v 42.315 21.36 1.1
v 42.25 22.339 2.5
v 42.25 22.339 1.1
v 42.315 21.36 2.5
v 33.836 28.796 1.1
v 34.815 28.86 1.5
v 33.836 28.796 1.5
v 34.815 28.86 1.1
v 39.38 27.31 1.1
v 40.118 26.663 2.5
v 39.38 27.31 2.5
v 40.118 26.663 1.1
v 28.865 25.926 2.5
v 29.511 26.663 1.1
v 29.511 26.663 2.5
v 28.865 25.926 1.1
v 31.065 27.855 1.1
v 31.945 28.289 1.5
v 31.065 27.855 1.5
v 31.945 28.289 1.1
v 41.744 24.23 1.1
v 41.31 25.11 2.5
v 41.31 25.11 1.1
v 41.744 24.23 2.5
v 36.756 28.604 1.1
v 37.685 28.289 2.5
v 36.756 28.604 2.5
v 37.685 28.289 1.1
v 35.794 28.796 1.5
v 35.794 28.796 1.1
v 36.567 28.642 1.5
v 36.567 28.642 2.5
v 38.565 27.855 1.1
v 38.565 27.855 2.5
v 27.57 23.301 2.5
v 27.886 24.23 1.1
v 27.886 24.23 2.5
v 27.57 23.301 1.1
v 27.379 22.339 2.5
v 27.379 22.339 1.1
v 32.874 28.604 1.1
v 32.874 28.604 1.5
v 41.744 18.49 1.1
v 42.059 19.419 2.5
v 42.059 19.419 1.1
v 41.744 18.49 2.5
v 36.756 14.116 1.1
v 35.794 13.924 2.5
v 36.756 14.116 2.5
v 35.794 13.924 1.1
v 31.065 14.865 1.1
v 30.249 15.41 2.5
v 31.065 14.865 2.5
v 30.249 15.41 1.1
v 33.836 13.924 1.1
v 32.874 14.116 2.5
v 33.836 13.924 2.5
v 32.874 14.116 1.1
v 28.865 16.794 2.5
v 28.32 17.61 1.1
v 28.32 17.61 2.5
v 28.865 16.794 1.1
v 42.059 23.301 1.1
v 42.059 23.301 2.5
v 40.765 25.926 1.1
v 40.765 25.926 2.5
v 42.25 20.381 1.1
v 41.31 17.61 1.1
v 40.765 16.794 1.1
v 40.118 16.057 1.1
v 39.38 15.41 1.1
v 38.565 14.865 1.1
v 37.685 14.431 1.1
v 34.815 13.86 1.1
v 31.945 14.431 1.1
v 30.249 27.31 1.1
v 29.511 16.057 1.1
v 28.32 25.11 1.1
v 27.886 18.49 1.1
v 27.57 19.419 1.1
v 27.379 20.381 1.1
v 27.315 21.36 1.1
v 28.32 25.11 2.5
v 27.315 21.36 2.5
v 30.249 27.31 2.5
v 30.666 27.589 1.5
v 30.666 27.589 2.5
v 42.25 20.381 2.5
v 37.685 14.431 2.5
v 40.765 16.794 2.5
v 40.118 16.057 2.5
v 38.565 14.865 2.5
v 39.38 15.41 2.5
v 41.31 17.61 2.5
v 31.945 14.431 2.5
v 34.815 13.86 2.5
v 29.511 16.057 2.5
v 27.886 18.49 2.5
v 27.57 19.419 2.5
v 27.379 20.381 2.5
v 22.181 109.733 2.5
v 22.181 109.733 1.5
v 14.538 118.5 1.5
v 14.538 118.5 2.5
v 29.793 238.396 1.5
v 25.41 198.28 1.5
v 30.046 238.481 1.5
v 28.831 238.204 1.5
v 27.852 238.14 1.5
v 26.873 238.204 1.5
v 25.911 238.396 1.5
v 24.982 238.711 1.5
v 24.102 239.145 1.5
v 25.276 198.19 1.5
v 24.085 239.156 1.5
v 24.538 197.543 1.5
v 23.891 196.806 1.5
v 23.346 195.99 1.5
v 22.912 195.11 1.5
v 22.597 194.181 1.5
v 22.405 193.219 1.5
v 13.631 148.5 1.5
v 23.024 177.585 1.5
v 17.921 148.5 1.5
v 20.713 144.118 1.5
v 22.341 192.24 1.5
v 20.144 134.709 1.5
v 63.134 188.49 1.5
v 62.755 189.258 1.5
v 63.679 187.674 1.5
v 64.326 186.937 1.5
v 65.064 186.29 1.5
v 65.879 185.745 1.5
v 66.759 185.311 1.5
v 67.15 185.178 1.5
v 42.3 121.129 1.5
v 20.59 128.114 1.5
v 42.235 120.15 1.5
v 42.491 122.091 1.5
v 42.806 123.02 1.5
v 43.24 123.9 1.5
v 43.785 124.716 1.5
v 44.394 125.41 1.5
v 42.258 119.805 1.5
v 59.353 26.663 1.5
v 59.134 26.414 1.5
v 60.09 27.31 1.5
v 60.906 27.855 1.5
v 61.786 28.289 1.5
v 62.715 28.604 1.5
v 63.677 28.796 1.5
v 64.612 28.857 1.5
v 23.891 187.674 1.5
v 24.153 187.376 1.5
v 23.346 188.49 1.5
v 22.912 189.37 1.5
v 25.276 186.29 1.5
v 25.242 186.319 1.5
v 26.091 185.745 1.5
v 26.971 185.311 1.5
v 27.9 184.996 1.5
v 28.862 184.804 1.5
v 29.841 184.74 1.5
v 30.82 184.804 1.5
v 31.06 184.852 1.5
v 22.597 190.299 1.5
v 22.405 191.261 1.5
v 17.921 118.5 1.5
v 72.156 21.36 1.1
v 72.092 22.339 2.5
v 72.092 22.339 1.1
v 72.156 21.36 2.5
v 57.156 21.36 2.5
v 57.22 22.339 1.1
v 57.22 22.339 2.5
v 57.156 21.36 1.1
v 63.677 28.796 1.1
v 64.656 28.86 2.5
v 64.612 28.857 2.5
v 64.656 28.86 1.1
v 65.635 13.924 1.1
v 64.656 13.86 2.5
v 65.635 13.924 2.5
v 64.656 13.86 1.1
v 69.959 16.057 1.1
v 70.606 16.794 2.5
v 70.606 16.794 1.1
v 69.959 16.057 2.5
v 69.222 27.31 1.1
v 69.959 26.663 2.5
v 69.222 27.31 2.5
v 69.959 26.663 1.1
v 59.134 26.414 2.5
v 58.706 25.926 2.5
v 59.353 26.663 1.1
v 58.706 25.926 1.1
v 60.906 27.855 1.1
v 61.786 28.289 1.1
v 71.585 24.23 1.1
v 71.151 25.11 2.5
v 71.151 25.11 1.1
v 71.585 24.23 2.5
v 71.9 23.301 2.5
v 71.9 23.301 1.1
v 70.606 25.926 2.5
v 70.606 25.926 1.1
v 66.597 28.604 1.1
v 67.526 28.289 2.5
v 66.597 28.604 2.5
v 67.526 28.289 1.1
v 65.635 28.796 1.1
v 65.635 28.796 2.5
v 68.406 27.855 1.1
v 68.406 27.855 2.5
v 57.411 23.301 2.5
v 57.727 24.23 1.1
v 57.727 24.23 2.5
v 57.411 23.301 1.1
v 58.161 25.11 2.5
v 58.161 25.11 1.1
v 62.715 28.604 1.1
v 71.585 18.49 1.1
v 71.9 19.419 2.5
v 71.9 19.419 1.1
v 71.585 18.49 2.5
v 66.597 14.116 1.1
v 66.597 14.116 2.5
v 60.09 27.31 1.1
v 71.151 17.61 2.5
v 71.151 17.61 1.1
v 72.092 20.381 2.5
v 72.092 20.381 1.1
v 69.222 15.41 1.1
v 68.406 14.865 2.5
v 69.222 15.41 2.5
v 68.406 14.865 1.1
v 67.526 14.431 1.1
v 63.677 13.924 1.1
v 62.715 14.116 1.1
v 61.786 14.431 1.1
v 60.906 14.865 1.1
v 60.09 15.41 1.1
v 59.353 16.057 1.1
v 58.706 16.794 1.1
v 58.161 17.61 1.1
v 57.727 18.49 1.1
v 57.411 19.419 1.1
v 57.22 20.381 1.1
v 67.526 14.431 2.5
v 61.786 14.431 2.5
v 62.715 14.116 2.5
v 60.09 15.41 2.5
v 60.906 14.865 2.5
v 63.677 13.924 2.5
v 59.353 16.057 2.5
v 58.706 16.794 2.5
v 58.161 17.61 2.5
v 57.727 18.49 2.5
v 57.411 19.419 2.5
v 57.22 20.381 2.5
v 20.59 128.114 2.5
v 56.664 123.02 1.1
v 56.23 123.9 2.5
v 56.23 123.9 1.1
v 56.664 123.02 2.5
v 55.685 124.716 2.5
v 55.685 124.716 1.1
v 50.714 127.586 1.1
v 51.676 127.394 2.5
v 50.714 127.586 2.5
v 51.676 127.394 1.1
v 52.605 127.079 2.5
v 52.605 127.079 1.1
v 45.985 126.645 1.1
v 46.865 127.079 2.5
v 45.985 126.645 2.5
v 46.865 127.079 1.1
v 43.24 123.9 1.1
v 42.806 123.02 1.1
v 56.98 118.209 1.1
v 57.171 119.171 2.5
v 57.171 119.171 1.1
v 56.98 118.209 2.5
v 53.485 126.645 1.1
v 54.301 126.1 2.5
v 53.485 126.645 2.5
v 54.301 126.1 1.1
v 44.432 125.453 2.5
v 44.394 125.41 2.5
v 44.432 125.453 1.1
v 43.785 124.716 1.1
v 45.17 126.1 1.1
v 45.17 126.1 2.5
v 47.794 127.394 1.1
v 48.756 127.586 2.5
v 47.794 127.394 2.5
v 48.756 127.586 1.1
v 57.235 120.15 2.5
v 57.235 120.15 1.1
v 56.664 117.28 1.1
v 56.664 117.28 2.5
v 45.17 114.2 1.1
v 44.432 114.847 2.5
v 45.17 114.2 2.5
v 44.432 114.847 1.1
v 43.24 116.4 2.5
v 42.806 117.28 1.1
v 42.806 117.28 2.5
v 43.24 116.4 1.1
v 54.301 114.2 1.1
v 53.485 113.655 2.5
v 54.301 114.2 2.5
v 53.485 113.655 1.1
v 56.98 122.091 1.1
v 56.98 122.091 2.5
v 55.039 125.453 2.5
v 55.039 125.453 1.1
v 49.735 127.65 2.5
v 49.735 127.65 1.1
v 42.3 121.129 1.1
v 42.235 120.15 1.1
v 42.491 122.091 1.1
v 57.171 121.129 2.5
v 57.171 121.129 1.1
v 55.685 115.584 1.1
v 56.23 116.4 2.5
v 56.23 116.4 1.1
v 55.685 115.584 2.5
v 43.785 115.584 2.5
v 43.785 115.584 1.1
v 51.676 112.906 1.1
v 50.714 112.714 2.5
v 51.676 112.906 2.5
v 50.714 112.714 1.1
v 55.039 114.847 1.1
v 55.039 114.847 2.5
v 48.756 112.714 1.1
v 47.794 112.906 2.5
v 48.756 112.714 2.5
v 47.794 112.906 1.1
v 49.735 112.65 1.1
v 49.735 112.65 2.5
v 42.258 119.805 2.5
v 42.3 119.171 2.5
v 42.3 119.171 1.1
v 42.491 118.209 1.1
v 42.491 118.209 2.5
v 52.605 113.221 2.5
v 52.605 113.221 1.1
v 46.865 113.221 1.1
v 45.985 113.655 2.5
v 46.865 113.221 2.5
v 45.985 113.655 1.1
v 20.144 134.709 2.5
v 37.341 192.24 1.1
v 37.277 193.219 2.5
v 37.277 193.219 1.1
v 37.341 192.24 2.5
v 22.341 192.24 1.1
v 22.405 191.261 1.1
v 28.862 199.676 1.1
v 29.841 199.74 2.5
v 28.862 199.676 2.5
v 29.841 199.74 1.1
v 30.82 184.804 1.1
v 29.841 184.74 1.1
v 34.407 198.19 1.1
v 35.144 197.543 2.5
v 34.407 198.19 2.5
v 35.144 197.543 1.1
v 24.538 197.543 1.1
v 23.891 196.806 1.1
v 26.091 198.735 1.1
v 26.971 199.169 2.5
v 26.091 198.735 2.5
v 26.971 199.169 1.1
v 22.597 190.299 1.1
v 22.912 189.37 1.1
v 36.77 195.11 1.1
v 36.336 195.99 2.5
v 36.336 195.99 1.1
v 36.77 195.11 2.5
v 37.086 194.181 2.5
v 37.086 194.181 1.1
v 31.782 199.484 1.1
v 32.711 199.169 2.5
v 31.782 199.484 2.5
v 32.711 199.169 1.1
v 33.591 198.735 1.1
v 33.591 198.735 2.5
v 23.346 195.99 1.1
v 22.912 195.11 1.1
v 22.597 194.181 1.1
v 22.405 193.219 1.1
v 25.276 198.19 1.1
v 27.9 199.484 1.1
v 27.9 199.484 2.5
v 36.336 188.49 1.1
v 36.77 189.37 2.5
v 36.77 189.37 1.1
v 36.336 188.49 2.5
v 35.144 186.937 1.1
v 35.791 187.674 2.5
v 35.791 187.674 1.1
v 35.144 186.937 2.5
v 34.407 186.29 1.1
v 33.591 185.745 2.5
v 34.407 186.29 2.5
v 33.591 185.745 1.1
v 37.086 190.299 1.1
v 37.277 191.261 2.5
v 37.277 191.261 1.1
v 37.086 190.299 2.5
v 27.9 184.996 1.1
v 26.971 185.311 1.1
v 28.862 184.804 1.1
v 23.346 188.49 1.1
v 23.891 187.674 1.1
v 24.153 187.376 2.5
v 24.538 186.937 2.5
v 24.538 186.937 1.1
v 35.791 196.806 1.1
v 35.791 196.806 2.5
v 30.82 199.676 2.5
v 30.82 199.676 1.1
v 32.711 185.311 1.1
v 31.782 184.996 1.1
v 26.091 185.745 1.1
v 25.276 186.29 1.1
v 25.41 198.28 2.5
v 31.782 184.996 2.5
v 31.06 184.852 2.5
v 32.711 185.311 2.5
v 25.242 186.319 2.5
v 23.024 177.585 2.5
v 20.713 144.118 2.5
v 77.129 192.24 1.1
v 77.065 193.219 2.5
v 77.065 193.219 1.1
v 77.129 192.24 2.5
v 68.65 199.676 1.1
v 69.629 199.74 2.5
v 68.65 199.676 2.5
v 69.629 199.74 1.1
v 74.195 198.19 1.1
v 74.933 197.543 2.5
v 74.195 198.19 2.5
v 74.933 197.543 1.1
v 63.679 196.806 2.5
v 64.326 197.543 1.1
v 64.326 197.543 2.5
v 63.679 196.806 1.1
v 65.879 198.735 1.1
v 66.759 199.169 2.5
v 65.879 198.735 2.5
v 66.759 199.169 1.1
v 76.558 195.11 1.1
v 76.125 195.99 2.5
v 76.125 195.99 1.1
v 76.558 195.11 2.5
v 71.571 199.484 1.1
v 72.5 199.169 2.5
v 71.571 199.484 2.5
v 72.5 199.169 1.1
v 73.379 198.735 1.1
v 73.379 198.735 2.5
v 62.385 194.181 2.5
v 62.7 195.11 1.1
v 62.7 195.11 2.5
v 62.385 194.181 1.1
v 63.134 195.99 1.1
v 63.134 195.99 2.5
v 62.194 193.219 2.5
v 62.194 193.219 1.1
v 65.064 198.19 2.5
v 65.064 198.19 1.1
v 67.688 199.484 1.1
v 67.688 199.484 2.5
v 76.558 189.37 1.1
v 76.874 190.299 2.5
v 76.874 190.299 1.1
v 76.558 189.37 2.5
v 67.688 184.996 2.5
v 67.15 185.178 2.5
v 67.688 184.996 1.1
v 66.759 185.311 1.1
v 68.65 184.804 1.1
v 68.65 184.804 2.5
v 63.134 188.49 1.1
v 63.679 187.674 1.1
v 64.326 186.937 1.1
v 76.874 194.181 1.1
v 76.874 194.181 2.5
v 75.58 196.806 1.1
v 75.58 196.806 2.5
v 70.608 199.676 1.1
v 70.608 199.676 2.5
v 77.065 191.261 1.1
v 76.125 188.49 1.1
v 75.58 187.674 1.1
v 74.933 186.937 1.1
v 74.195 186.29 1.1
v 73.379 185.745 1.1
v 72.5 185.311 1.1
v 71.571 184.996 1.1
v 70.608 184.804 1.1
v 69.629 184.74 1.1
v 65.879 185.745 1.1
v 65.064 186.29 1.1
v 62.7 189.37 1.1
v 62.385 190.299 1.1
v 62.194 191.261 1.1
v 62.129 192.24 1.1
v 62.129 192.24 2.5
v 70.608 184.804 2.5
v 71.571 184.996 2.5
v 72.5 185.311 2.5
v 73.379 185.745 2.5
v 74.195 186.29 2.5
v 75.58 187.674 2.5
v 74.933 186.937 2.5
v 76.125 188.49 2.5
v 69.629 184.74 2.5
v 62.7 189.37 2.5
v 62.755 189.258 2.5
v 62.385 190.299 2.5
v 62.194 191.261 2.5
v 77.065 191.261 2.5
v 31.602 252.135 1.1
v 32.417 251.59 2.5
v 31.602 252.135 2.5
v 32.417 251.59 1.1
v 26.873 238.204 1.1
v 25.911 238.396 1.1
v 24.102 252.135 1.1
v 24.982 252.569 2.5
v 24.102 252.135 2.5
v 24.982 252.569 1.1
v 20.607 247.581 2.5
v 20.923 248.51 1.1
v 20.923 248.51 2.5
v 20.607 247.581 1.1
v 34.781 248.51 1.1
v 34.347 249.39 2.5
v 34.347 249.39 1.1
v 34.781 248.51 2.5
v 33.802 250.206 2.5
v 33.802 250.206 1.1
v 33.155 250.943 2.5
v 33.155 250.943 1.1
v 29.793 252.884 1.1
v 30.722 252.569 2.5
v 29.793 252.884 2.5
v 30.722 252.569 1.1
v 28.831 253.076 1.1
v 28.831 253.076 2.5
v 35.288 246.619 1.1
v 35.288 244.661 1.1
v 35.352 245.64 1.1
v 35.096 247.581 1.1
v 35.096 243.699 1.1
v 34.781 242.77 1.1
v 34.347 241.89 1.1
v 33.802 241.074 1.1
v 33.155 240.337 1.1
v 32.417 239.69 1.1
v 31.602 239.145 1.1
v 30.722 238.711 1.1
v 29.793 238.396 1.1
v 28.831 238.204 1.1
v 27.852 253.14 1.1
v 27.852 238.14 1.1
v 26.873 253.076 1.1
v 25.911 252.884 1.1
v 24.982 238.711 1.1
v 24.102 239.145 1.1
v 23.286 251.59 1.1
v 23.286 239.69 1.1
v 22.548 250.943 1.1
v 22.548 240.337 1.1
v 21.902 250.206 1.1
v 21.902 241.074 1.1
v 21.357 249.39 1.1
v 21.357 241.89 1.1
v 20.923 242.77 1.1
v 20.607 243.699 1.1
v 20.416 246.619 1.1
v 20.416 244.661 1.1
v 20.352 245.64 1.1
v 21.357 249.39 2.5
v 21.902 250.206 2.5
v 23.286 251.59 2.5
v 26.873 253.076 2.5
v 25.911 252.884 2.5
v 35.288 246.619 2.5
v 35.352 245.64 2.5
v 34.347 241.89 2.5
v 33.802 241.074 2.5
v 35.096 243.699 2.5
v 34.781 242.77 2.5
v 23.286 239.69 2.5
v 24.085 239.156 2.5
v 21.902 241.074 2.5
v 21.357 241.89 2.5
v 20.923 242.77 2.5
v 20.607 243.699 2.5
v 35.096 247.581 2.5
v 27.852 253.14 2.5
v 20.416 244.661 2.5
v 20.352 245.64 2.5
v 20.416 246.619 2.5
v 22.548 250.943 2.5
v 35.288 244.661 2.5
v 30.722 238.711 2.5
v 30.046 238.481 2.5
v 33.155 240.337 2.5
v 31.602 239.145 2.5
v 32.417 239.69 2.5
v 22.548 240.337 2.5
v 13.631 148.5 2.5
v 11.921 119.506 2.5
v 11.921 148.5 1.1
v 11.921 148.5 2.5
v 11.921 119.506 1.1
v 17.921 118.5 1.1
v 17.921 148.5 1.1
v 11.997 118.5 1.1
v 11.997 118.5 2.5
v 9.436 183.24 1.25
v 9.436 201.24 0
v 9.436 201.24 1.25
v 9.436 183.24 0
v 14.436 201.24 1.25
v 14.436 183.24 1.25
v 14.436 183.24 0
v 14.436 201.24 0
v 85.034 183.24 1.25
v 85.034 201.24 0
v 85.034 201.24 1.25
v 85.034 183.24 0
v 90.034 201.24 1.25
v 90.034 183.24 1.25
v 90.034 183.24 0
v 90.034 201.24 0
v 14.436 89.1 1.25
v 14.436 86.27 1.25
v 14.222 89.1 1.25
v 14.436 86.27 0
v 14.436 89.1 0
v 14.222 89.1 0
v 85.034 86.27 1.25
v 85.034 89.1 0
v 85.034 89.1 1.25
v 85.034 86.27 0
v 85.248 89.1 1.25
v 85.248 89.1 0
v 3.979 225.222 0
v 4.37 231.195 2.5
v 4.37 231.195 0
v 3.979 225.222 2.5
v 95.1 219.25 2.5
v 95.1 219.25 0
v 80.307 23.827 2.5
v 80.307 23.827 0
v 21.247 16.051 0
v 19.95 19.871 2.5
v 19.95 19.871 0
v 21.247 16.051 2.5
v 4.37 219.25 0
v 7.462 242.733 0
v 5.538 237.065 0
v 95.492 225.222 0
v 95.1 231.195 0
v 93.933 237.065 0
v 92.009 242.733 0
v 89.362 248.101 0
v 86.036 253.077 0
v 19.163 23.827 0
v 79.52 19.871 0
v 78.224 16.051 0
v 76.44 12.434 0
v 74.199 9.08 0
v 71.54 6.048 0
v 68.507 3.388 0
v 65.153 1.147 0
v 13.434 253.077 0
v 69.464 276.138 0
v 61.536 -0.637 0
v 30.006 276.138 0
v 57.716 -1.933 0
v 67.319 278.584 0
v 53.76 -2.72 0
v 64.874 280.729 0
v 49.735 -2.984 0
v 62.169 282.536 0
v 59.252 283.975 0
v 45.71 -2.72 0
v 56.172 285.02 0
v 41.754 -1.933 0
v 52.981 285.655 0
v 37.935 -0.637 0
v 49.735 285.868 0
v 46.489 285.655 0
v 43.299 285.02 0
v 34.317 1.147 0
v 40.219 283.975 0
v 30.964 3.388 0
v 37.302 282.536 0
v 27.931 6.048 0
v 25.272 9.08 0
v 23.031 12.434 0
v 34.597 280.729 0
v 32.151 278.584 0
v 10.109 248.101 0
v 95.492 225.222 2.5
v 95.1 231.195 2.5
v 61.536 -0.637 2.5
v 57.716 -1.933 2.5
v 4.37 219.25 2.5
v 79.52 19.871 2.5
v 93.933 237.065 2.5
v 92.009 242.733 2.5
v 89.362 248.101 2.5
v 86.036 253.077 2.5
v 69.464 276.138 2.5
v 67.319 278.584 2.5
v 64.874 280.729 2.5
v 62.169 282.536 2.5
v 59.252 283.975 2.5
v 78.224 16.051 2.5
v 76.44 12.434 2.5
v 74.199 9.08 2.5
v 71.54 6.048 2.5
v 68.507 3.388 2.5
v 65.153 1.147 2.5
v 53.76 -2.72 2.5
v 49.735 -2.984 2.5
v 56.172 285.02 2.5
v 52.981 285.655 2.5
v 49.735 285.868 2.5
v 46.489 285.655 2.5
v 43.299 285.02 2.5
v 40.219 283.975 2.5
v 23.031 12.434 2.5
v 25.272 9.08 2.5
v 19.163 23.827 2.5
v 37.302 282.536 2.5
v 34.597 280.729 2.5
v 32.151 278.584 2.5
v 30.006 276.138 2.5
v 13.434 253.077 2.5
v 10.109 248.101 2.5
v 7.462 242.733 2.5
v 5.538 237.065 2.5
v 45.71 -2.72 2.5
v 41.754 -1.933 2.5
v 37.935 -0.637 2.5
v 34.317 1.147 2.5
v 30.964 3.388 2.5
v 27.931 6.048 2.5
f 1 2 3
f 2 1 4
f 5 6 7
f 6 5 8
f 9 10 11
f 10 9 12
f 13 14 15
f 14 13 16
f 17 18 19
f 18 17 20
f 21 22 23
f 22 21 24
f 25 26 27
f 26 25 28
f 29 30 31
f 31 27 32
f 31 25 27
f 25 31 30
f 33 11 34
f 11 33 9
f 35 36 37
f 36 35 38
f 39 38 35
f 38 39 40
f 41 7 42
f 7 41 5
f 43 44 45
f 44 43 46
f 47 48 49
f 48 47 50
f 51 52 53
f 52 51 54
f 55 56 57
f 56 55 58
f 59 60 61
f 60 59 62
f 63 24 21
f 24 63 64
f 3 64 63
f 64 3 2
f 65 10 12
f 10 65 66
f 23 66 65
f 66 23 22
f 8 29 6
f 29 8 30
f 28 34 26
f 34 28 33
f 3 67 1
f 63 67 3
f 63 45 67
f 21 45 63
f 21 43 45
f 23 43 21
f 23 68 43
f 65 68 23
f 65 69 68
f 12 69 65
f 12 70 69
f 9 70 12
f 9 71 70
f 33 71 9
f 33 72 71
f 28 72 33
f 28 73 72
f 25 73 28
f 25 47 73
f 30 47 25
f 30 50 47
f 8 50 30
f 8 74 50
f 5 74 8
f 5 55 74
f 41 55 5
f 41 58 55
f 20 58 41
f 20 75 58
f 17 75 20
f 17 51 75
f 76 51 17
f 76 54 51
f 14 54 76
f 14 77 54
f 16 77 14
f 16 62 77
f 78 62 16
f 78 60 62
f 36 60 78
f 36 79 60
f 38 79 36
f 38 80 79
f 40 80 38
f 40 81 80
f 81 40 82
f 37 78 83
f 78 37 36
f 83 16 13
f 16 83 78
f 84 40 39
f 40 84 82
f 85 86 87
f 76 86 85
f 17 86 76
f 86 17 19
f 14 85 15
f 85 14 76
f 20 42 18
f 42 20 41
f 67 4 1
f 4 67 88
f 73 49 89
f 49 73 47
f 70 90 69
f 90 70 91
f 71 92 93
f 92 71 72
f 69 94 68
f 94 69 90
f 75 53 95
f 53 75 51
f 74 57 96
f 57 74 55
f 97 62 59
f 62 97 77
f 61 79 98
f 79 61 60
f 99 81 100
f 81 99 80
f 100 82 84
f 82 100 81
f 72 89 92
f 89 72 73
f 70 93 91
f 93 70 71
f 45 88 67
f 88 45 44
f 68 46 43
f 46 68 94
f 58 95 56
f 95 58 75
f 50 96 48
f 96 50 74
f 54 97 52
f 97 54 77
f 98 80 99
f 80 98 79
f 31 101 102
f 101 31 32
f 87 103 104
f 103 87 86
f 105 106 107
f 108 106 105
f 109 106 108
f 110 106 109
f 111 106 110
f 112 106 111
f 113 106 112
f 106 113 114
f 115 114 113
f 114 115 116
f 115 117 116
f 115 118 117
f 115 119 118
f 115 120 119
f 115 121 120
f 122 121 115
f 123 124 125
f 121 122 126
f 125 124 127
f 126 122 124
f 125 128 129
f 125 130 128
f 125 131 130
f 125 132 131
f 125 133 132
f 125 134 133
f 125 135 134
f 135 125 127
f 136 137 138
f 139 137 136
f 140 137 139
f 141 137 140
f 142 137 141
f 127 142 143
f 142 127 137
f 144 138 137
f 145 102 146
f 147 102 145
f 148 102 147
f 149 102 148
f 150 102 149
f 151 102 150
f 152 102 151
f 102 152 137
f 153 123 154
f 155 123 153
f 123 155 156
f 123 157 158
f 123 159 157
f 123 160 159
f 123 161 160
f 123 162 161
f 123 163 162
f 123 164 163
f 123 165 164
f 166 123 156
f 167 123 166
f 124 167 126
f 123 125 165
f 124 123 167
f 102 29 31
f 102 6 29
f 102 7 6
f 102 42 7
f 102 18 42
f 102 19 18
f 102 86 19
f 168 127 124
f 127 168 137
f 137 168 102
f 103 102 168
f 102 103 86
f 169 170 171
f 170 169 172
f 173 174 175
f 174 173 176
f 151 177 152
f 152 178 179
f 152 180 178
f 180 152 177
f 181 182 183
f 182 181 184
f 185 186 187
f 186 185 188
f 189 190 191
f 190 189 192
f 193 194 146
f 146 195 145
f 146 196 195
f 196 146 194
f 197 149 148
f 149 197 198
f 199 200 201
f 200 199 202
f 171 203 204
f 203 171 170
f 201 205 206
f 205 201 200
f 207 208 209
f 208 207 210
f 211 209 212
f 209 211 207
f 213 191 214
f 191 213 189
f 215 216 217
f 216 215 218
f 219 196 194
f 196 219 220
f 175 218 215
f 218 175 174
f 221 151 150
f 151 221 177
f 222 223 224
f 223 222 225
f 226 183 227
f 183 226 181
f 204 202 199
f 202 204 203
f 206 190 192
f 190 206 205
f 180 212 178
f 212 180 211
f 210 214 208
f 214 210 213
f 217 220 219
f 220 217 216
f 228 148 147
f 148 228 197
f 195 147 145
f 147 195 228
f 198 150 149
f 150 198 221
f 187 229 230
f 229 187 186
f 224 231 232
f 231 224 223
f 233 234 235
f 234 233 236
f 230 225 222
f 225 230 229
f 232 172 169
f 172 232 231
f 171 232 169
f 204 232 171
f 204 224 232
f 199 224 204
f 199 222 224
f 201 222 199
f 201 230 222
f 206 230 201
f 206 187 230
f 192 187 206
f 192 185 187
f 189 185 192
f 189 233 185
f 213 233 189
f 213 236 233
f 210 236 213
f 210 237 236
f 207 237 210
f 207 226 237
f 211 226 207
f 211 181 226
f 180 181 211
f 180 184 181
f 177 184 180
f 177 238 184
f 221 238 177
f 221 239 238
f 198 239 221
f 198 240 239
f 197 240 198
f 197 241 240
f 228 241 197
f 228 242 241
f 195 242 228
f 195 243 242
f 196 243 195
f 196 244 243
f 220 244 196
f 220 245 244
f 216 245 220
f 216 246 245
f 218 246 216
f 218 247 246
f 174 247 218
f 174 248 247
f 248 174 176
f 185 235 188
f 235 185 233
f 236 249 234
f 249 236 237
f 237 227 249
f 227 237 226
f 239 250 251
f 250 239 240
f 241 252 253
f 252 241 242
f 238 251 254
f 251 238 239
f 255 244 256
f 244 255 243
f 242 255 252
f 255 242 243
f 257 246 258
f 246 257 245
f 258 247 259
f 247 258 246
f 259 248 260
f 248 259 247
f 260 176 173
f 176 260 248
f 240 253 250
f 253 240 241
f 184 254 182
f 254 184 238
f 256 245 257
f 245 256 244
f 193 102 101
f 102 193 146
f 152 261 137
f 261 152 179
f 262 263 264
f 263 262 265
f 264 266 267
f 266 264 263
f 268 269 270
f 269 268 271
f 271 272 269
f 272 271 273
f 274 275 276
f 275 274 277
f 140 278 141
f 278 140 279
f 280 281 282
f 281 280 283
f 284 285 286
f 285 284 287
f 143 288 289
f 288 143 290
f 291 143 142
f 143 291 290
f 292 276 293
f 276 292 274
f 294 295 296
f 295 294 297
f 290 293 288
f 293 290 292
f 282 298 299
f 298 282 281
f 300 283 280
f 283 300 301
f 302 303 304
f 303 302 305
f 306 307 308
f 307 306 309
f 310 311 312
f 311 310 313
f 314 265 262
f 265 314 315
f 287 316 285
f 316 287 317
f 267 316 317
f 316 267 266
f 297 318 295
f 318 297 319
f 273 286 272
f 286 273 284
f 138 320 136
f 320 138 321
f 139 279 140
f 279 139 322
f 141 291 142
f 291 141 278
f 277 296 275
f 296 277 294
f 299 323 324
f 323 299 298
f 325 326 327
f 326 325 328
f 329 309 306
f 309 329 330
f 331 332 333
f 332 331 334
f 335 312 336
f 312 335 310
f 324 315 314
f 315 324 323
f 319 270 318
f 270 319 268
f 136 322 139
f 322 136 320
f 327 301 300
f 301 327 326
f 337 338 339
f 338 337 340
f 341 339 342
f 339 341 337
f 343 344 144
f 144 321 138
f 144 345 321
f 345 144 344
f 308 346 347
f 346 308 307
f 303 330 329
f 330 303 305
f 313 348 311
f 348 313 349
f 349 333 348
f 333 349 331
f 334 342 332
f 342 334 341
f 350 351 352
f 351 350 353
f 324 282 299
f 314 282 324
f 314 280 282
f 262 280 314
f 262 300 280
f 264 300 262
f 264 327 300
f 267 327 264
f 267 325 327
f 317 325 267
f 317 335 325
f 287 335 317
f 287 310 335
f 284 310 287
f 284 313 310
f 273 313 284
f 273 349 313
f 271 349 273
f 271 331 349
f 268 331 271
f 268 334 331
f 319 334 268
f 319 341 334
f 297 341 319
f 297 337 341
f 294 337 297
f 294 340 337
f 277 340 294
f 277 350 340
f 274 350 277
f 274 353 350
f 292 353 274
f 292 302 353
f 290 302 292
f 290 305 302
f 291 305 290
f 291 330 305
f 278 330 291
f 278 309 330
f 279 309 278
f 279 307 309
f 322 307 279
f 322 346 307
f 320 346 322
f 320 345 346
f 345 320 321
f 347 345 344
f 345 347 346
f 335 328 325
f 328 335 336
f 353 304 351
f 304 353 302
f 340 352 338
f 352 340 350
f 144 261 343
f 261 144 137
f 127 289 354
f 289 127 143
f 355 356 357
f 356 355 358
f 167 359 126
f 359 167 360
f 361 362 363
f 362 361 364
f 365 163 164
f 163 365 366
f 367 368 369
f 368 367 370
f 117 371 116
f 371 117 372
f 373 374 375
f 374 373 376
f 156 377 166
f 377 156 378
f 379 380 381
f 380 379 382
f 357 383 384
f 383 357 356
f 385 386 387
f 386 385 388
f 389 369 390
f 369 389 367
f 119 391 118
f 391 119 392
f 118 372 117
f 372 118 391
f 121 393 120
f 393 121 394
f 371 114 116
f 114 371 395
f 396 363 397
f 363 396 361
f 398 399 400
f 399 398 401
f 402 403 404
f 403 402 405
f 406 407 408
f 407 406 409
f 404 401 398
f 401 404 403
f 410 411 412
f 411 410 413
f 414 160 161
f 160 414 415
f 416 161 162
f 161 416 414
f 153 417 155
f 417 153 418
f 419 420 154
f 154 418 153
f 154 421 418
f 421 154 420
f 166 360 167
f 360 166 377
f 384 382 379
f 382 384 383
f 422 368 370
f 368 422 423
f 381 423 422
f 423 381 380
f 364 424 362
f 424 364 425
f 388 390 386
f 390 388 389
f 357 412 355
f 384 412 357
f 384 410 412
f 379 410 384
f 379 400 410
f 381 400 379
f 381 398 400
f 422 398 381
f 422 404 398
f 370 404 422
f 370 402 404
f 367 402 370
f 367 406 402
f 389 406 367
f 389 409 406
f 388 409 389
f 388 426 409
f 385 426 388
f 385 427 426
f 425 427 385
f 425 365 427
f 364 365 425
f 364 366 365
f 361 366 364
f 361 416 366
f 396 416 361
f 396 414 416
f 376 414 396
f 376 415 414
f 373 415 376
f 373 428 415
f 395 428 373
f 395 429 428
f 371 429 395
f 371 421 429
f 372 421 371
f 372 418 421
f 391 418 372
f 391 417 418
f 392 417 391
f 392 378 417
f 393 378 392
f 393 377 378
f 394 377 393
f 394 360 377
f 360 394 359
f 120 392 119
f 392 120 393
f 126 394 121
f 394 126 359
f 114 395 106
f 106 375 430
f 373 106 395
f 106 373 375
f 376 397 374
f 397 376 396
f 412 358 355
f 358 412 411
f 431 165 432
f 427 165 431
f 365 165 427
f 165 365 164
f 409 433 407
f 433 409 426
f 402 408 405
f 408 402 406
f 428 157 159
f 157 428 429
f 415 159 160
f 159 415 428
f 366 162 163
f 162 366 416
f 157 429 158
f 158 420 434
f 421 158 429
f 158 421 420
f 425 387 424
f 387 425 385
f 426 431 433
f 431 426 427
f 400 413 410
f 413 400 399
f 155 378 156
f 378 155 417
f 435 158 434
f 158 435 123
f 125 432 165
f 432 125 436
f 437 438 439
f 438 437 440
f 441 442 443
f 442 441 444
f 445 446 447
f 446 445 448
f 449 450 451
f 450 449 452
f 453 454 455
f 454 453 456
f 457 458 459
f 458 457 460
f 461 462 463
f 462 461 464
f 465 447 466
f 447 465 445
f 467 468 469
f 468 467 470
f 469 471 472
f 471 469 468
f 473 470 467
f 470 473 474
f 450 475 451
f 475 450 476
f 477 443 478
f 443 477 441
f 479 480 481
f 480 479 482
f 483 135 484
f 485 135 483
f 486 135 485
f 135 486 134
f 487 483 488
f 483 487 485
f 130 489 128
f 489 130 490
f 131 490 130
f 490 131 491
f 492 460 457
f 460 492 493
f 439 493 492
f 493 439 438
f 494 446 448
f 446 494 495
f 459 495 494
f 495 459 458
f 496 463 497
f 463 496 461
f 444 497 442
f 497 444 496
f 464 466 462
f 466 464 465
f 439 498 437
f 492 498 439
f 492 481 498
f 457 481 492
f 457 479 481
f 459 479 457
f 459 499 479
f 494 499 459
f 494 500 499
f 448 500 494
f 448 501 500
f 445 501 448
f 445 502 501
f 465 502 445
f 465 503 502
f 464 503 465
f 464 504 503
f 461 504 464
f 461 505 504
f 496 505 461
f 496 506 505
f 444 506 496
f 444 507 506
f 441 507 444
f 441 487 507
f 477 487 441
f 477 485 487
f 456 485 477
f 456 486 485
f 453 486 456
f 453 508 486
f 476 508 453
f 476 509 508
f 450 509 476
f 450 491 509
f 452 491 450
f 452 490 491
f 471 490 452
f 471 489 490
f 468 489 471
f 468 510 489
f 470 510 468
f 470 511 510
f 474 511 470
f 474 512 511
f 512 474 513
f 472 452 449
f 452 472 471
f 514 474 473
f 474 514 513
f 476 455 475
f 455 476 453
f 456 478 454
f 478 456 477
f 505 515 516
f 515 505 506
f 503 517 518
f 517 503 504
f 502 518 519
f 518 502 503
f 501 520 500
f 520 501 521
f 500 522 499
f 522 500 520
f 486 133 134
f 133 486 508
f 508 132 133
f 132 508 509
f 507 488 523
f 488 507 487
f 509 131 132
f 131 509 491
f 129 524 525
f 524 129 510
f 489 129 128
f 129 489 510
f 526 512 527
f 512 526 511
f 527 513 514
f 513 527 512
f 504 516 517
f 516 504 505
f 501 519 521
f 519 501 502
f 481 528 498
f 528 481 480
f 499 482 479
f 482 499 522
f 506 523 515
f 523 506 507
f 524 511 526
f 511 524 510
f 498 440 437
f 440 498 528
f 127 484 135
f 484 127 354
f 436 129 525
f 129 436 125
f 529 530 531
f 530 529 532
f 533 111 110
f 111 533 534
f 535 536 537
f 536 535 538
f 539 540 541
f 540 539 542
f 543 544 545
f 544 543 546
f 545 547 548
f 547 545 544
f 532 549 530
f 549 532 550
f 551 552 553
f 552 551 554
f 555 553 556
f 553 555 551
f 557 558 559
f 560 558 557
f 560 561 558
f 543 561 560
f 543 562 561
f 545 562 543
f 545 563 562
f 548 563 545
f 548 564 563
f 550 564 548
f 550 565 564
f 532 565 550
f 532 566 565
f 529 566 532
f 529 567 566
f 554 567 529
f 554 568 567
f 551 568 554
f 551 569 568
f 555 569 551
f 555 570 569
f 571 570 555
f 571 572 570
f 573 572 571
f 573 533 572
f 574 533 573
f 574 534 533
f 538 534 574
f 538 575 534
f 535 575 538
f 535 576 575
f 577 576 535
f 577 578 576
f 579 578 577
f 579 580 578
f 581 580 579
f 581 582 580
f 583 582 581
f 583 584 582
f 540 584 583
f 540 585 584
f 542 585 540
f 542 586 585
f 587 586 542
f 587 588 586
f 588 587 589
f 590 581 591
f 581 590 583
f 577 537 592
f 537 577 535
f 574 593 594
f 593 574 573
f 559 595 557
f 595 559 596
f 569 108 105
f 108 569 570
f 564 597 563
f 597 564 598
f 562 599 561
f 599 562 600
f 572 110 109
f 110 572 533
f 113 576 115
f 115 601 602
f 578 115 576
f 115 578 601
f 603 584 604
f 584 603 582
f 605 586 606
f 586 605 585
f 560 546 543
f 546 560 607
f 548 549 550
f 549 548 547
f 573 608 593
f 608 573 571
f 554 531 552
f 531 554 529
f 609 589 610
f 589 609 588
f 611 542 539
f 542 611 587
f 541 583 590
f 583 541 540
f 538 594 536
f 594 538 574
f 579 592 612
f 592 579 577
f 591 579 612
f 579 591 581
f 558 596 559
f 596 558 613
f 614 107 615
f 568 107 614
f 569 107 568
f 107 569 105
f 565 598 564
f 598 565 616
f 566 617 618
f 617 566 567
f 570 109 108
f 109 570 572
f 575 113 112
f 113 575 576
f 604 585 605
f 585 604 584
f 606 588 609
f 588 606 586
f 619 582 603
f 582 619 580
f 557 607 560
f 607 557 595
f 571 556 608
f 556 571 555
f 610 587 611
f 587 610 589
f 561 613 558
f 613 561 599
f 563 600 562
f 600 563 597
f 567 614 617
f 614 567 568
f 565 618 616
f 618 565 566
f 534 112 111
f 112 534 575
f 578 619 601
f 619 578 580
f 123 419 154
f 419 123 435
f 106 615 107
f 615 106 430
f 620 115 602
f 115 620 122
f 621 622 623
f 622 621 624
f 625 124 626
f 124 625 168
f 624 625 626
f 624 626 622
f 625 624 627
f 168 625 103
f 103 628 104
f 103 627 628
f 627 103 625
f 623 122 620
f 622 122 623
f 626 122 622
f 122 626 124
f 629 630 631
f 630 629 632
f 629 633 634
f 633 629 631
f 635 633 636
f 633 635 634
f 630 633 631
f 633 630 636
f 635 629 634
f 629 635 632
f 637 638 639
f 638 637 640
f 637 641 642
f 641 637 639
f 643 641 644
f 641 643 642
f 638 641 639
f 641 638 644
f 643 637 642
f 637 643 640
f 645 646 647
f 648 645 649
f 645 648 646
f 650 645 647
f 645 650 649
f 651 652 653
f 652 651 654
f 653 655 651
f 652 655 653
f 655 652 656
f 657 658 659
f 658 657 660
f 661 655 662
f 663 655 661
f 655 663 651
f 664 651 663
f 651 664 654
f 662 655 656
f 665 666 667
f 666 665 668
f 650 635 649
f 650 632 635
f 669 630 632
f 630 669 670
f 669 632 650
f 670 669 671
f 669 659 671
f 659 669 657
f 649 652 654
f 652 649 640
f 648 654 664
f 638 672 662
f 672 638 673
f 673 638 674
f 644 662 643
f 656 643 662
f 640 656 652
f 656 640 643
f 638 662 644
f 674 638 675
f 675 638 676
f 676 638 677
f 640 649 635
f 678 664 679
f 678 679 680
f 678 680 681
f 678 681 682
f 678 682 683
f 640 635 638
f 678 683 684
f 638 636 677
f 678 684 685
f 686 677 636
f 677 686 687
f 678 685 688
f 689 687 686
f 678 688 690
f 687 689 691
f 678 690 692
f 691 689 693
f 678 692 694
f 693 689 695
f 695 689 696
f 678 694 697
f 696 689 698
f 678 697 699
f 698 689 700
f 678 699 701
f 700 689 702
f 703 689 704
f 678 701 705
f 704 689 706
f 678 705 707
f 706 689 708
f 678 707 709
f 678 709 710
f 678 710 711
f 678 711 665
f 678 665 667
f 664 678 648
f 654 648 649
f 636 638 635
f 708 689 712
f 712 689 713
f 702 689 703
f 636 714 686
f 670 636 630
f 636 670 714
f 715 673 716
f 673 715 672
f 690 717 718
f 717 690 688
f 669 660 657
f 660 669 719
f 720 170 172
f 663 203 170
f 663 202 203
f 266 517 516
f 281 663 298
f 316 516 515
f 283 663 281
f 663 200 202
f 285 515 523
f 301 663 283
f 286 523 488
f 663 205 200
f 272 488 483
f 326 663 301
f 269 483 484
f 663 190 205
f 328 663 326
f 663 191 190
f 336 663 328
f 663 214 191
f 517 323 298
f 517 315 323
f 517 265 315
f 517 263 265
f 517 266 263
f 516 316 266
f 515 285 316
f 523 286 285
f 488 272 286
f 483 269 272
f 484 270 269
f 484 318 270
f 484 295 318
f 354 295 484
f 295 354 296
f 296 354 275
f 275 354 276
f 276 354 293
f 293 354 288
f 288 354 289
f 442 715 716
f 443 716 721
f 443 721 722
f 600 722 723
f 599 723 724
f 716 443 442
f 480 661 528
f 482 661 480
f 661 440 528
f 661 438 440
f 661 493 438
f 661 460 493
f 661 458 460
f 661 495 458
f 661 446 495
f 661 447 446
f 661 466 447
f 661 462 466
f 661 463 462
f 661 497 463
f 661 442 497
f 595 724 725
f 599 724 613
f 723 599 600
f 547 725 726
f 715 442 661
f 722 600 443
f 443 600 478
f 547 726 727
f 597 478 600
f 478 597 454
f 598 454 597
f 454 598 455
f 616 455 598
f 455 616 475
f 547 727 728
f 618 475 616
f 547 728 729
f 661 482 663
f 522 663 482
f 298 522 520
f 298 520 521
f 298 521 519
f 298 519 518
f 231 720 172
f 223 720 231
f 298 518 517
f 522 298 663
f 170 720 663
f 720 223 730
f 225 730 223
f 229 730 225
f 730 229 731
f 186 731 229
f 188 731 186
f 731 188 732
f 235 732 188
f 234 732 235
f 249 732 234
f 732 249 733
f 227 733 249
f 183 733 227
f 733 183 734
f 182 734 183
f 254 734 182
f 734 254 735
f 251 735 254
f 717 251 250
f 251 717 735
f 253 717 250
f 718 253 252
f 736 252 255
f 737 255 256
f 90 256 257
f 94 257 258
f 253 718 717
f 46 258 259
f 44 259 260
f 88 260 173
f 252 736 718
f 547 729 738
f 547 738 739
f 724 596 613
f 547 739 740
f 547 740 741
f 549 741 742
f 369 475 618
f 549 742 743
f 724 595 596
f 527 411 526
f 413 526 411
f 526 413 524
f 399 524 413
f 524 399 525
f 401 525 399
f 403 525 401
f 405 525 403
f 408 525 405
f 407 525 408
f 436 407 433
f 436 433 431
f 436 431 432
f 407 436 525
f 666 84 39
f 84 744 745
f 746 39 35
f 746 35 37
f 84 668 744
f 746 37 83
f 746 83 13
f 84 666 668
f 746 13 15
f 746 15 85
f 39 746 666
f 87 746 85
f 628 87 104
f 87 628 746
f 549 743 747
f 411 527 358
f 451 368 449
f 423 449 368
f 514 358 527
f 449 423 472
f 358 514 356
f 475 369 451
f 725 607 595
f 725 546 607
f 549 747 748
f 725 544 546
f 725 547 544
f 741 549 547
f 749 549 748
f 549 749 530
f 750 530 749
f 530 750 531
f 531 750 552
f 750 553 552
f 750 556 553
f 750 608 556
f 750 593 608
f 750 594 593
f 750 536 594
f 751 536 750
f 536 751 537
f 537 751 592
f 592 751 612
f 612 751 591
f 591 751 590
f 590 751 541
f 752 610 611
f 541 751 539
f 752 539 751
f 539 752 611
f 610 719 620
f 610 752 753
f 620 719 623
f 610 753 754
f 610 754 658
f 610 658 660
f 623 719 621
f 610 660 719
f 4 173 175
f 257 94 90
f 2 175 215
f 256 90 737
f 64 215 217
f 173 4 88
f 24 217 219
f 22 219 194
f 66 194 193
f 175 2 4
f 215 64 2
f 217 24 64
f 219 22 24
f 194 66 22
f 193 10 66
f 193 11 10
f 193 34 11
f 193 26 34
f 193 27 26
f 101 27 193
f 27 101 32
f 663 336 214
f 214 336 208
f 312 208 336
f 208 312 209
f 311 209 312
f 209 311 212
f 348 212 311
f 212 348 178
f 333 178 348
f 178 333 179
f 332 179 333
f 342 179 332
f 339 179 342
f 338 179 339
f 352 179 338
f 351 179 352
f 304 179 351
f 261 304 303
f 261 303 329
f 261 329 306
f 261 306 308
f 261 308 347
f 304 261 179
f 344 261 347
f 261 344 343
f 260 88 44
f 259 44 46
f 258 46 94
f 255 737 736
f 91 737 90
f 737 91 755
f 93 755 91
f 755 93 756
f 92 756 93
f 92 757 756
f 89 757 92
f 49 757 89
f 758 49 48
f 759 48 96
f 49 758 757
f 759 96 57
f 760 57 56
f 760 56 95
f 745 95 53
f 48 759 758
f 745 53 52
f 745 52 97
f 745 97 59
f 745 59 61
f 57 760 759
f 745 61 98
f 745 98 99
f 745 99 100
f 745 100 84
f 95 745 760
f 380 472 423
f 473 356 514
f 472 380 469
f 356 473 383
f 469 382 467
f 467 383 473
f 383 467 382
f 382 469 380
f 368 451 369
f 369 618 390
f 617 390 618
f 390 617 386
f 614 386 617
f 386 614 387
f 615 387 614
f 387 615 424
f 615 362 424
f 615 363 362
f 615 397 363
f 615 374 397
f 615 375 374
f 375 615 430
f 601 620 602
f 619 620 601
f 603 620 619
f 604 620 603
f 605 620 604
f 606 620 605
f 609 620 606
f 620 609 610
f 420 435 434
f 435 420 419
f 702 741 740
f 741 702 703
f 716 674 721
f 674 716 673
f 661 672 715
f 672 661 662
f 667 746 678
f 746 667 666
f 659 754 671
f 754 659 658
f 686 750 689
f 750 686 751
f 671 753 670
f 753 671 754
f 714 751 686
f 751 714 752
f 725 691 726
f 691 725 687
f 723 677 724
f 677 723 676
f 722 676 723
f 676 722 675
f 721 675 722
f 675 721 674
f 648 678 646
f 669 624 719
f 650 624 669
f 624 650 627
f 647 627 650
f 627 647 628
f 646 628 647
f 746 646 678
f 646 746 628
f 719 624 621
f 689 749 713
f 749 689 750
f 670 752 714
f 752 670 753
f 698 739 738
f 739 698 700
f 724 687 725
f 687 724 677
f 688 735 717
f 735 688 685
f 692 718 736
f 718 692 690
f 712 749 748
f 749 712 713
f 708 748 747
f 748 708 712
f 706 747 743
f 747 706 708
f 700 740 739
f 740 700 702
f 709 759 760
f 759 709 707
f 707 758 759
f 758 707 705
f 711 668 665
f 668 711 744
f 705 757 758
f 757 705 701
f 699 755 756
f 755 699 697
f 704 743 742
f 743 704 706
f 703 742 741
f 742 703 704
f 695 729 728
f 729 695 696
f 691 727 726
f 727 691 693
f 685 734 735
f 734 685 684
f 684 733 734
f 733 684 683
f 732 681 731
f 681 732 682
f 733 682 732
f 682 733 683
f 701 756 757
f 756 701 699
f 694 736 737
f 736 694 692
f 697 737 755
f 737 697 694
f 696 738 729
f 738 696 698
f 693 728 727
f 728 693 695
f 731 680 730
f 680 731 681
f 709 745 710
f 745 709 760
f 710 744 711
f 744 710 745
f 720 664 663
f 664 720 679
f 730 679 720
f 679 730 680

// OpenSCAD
// insole_fsr_layout.scad — flat FSR "sensor carrier" plate for the 6-zone STEMMA-QT rig
// (heel_med, heel_lat, midfoot, met1, met5, hallux — one FSR402 per zone, straight into the
// ESP32-C6 Feather's 6 analog pins A0..A5, no mux). Coordinates + rationale are written up in
// docs/insole_sensor_layout.md — read that alongside this file.
//
// This is a companion to hardware/barefoot_sole.scad, not a replacement: barefoot_sole.scad is
// the original 8-zone carrier for the ESP32-S3+mux rig. This file is thinner-scoped (6 zones)
// and, unlike that file, is driven by a SINGLE top-level parameter (FOOT_LEN) — width is derived
// from it, using the same length:width ratio the rest of the repo's norms DB uses
// (refs/plantar_norms.json: 95 mm width / 255 mm length), so the whole plate rescales from one
// number instead of two independent ones.
//
// Two ways to use it:
//   1. Print thin in TPU (~2.5 mm, soft 85A, external dryer spool) as an actual wearable
//      carrier — slide it under your regular insole, same idea as barefoot_sole.scad.
//   2. Print quick in scrap PLA (skip the TPU entirely) as a flat LAYOUT JIG — just to trace/
//      mark the 6 zone positions onto a shoe insole or orthotic before you commit to TPU.
//
// Usage: open in OpenSCAD -> F6 -> Export STL. All units mm.

/* ================= PARAMETERS ================= */
FOOT_LEN   = 267;          // heel->toe reference length (mm). Default = men's ~US10 (~10.5 in);
                            // ±5 mm across shoe-size charts — measure your own foot
                            // (docs/fit_to_your_foot.md) and set this for a true fit.
WIDTH_RATIO = 95 / 255;     // ball-width : length ratio from refs/plantar_norms.json's reference
                            // foot — the same convention analysis/zone_load.py's zone_mm() uses.
FOOT_W = FOOT_LEN * WIDTH_RATIO;   // derived ball width (~99.5 mm at the default length)

THICK    = 2.5;   // plate thickness (thinner than barefoot_sole.scad's 3.5 — this is a
                   // layout/reference carrier, meant to ride under an existing insole)
POCKET_D = 15;     // FSR402 pocket diameter (12.7 mm active area + slack)
POCKET_H = 1.4;    // recess depth — leaves a thin membrane over the sensor
CHAN_W   = 6;       // wire-routing channel width
$fn      = 48;

// FSR zone positions — normalized [x medial->lateral 0..1, y heel->toe 0..1].
// Same coordinate convention (and same numbers) as SENSOR_XY / ZONES in
// analysis/analyze_pressure.py and the zones array in barefoot_sole.scad — this is the
// heel_med/heel_lat/midfoot/met1/met5/hallux SUBSET of that 8-zone list (met3 and toes
// dropped; see docs/insole_sensor_layout.md for why 6, and the fsr0..fsr5 -> A0..A5 wiring
// order these are listed in).
zones = [
  [0.35, 0.08],   // 0  heel_med  -> A0
  [0.65, 0.08],   // 1  heel_lat  -> A1
  [0.50, 0.45],   // 2  midfoot   -> A2
  [0.30, 0.72],   // 3  met1      -> A3
  [0.70, 0.72],   // 4  met5      -> A4
  [0.28, 0.92],   // 5  hallux    -> A5
];

// exit point (medial instep) where all routing channels converge toward the ribbon/JST
// cable running up to the ankle pod
EXIT_X = 0.15;
EXIT_Y = 0.50;

/* ================= GEOMETRY ================= */
// heel/ball/toe outline, same hull-of-3-circles shape as barefoot_sole.scad, driven by the
// two derived dimensions above instead of independent hardcoded ones
module footbed(){
  hull(){
    translate([FOOT_W/2, FOOT_W*0.28,          0]) cylinder(d = FOOT_W*0.62, h = THICK); // heel
    translate([FOOT_W/2, FOOT_LEN - FOOT_W*0.42,0]) cylinder(d = FOOT_W*0.92, h = THICK); // ball
    translate([FOOT_W/2, FOOT_LEN - 6,          0]) cylinder(d = FOOT_W*0.50, h = THICK); // toe
  }
}

module pockets_and_channels(){
  for (z = zones){
    px = z[0]*FOOT_W; py = z[1]*FOOT_LEN;
    // FSR pocket, recessed from the top face — compatible with hardware/fsr_puck.scad
    translate([px, py, THICK - POCKET_H]) cylinder(d = POCKET_D, h = POCKET_H + 1);
    // wire channel from each pocket toward the medial-instep exit
    hull(){
      translate([px, py, THICK - 1.0]) cylinder(d = CHAN_W, h = 1.2);
      translate([FOOT_W*EXIT_X, FOOT_LEN*EXIT_Y, THICK - 1.0]) cylinder(d = CHAN_W, h = 1.2);
    }
  }
  // ribbon/JST exit slot out the medial edge, toward the ankle pod
  translate([FOOT_W*EXIT_X - CHAN_W/2, FOOT_LEN*EXIT_Y - 15, THICK - 1.4])
    cube([CHAN_W, 30, 1.5]);
}

module strap_slots(){          // toe + ankle transverse straps, same convention as barefoot_sole
  for (y = [FOOT_LEN*0.72, FOOT_LEN*0.30])
    for (sx = [0.12, 0.88])
      translate([FOOT_W*sx, y, -0.5]) cube([5, 18, THICK + 1], center = true);
}

difference(){
  footbed();
  pockets_and_channels();
  strap_slots();
}
